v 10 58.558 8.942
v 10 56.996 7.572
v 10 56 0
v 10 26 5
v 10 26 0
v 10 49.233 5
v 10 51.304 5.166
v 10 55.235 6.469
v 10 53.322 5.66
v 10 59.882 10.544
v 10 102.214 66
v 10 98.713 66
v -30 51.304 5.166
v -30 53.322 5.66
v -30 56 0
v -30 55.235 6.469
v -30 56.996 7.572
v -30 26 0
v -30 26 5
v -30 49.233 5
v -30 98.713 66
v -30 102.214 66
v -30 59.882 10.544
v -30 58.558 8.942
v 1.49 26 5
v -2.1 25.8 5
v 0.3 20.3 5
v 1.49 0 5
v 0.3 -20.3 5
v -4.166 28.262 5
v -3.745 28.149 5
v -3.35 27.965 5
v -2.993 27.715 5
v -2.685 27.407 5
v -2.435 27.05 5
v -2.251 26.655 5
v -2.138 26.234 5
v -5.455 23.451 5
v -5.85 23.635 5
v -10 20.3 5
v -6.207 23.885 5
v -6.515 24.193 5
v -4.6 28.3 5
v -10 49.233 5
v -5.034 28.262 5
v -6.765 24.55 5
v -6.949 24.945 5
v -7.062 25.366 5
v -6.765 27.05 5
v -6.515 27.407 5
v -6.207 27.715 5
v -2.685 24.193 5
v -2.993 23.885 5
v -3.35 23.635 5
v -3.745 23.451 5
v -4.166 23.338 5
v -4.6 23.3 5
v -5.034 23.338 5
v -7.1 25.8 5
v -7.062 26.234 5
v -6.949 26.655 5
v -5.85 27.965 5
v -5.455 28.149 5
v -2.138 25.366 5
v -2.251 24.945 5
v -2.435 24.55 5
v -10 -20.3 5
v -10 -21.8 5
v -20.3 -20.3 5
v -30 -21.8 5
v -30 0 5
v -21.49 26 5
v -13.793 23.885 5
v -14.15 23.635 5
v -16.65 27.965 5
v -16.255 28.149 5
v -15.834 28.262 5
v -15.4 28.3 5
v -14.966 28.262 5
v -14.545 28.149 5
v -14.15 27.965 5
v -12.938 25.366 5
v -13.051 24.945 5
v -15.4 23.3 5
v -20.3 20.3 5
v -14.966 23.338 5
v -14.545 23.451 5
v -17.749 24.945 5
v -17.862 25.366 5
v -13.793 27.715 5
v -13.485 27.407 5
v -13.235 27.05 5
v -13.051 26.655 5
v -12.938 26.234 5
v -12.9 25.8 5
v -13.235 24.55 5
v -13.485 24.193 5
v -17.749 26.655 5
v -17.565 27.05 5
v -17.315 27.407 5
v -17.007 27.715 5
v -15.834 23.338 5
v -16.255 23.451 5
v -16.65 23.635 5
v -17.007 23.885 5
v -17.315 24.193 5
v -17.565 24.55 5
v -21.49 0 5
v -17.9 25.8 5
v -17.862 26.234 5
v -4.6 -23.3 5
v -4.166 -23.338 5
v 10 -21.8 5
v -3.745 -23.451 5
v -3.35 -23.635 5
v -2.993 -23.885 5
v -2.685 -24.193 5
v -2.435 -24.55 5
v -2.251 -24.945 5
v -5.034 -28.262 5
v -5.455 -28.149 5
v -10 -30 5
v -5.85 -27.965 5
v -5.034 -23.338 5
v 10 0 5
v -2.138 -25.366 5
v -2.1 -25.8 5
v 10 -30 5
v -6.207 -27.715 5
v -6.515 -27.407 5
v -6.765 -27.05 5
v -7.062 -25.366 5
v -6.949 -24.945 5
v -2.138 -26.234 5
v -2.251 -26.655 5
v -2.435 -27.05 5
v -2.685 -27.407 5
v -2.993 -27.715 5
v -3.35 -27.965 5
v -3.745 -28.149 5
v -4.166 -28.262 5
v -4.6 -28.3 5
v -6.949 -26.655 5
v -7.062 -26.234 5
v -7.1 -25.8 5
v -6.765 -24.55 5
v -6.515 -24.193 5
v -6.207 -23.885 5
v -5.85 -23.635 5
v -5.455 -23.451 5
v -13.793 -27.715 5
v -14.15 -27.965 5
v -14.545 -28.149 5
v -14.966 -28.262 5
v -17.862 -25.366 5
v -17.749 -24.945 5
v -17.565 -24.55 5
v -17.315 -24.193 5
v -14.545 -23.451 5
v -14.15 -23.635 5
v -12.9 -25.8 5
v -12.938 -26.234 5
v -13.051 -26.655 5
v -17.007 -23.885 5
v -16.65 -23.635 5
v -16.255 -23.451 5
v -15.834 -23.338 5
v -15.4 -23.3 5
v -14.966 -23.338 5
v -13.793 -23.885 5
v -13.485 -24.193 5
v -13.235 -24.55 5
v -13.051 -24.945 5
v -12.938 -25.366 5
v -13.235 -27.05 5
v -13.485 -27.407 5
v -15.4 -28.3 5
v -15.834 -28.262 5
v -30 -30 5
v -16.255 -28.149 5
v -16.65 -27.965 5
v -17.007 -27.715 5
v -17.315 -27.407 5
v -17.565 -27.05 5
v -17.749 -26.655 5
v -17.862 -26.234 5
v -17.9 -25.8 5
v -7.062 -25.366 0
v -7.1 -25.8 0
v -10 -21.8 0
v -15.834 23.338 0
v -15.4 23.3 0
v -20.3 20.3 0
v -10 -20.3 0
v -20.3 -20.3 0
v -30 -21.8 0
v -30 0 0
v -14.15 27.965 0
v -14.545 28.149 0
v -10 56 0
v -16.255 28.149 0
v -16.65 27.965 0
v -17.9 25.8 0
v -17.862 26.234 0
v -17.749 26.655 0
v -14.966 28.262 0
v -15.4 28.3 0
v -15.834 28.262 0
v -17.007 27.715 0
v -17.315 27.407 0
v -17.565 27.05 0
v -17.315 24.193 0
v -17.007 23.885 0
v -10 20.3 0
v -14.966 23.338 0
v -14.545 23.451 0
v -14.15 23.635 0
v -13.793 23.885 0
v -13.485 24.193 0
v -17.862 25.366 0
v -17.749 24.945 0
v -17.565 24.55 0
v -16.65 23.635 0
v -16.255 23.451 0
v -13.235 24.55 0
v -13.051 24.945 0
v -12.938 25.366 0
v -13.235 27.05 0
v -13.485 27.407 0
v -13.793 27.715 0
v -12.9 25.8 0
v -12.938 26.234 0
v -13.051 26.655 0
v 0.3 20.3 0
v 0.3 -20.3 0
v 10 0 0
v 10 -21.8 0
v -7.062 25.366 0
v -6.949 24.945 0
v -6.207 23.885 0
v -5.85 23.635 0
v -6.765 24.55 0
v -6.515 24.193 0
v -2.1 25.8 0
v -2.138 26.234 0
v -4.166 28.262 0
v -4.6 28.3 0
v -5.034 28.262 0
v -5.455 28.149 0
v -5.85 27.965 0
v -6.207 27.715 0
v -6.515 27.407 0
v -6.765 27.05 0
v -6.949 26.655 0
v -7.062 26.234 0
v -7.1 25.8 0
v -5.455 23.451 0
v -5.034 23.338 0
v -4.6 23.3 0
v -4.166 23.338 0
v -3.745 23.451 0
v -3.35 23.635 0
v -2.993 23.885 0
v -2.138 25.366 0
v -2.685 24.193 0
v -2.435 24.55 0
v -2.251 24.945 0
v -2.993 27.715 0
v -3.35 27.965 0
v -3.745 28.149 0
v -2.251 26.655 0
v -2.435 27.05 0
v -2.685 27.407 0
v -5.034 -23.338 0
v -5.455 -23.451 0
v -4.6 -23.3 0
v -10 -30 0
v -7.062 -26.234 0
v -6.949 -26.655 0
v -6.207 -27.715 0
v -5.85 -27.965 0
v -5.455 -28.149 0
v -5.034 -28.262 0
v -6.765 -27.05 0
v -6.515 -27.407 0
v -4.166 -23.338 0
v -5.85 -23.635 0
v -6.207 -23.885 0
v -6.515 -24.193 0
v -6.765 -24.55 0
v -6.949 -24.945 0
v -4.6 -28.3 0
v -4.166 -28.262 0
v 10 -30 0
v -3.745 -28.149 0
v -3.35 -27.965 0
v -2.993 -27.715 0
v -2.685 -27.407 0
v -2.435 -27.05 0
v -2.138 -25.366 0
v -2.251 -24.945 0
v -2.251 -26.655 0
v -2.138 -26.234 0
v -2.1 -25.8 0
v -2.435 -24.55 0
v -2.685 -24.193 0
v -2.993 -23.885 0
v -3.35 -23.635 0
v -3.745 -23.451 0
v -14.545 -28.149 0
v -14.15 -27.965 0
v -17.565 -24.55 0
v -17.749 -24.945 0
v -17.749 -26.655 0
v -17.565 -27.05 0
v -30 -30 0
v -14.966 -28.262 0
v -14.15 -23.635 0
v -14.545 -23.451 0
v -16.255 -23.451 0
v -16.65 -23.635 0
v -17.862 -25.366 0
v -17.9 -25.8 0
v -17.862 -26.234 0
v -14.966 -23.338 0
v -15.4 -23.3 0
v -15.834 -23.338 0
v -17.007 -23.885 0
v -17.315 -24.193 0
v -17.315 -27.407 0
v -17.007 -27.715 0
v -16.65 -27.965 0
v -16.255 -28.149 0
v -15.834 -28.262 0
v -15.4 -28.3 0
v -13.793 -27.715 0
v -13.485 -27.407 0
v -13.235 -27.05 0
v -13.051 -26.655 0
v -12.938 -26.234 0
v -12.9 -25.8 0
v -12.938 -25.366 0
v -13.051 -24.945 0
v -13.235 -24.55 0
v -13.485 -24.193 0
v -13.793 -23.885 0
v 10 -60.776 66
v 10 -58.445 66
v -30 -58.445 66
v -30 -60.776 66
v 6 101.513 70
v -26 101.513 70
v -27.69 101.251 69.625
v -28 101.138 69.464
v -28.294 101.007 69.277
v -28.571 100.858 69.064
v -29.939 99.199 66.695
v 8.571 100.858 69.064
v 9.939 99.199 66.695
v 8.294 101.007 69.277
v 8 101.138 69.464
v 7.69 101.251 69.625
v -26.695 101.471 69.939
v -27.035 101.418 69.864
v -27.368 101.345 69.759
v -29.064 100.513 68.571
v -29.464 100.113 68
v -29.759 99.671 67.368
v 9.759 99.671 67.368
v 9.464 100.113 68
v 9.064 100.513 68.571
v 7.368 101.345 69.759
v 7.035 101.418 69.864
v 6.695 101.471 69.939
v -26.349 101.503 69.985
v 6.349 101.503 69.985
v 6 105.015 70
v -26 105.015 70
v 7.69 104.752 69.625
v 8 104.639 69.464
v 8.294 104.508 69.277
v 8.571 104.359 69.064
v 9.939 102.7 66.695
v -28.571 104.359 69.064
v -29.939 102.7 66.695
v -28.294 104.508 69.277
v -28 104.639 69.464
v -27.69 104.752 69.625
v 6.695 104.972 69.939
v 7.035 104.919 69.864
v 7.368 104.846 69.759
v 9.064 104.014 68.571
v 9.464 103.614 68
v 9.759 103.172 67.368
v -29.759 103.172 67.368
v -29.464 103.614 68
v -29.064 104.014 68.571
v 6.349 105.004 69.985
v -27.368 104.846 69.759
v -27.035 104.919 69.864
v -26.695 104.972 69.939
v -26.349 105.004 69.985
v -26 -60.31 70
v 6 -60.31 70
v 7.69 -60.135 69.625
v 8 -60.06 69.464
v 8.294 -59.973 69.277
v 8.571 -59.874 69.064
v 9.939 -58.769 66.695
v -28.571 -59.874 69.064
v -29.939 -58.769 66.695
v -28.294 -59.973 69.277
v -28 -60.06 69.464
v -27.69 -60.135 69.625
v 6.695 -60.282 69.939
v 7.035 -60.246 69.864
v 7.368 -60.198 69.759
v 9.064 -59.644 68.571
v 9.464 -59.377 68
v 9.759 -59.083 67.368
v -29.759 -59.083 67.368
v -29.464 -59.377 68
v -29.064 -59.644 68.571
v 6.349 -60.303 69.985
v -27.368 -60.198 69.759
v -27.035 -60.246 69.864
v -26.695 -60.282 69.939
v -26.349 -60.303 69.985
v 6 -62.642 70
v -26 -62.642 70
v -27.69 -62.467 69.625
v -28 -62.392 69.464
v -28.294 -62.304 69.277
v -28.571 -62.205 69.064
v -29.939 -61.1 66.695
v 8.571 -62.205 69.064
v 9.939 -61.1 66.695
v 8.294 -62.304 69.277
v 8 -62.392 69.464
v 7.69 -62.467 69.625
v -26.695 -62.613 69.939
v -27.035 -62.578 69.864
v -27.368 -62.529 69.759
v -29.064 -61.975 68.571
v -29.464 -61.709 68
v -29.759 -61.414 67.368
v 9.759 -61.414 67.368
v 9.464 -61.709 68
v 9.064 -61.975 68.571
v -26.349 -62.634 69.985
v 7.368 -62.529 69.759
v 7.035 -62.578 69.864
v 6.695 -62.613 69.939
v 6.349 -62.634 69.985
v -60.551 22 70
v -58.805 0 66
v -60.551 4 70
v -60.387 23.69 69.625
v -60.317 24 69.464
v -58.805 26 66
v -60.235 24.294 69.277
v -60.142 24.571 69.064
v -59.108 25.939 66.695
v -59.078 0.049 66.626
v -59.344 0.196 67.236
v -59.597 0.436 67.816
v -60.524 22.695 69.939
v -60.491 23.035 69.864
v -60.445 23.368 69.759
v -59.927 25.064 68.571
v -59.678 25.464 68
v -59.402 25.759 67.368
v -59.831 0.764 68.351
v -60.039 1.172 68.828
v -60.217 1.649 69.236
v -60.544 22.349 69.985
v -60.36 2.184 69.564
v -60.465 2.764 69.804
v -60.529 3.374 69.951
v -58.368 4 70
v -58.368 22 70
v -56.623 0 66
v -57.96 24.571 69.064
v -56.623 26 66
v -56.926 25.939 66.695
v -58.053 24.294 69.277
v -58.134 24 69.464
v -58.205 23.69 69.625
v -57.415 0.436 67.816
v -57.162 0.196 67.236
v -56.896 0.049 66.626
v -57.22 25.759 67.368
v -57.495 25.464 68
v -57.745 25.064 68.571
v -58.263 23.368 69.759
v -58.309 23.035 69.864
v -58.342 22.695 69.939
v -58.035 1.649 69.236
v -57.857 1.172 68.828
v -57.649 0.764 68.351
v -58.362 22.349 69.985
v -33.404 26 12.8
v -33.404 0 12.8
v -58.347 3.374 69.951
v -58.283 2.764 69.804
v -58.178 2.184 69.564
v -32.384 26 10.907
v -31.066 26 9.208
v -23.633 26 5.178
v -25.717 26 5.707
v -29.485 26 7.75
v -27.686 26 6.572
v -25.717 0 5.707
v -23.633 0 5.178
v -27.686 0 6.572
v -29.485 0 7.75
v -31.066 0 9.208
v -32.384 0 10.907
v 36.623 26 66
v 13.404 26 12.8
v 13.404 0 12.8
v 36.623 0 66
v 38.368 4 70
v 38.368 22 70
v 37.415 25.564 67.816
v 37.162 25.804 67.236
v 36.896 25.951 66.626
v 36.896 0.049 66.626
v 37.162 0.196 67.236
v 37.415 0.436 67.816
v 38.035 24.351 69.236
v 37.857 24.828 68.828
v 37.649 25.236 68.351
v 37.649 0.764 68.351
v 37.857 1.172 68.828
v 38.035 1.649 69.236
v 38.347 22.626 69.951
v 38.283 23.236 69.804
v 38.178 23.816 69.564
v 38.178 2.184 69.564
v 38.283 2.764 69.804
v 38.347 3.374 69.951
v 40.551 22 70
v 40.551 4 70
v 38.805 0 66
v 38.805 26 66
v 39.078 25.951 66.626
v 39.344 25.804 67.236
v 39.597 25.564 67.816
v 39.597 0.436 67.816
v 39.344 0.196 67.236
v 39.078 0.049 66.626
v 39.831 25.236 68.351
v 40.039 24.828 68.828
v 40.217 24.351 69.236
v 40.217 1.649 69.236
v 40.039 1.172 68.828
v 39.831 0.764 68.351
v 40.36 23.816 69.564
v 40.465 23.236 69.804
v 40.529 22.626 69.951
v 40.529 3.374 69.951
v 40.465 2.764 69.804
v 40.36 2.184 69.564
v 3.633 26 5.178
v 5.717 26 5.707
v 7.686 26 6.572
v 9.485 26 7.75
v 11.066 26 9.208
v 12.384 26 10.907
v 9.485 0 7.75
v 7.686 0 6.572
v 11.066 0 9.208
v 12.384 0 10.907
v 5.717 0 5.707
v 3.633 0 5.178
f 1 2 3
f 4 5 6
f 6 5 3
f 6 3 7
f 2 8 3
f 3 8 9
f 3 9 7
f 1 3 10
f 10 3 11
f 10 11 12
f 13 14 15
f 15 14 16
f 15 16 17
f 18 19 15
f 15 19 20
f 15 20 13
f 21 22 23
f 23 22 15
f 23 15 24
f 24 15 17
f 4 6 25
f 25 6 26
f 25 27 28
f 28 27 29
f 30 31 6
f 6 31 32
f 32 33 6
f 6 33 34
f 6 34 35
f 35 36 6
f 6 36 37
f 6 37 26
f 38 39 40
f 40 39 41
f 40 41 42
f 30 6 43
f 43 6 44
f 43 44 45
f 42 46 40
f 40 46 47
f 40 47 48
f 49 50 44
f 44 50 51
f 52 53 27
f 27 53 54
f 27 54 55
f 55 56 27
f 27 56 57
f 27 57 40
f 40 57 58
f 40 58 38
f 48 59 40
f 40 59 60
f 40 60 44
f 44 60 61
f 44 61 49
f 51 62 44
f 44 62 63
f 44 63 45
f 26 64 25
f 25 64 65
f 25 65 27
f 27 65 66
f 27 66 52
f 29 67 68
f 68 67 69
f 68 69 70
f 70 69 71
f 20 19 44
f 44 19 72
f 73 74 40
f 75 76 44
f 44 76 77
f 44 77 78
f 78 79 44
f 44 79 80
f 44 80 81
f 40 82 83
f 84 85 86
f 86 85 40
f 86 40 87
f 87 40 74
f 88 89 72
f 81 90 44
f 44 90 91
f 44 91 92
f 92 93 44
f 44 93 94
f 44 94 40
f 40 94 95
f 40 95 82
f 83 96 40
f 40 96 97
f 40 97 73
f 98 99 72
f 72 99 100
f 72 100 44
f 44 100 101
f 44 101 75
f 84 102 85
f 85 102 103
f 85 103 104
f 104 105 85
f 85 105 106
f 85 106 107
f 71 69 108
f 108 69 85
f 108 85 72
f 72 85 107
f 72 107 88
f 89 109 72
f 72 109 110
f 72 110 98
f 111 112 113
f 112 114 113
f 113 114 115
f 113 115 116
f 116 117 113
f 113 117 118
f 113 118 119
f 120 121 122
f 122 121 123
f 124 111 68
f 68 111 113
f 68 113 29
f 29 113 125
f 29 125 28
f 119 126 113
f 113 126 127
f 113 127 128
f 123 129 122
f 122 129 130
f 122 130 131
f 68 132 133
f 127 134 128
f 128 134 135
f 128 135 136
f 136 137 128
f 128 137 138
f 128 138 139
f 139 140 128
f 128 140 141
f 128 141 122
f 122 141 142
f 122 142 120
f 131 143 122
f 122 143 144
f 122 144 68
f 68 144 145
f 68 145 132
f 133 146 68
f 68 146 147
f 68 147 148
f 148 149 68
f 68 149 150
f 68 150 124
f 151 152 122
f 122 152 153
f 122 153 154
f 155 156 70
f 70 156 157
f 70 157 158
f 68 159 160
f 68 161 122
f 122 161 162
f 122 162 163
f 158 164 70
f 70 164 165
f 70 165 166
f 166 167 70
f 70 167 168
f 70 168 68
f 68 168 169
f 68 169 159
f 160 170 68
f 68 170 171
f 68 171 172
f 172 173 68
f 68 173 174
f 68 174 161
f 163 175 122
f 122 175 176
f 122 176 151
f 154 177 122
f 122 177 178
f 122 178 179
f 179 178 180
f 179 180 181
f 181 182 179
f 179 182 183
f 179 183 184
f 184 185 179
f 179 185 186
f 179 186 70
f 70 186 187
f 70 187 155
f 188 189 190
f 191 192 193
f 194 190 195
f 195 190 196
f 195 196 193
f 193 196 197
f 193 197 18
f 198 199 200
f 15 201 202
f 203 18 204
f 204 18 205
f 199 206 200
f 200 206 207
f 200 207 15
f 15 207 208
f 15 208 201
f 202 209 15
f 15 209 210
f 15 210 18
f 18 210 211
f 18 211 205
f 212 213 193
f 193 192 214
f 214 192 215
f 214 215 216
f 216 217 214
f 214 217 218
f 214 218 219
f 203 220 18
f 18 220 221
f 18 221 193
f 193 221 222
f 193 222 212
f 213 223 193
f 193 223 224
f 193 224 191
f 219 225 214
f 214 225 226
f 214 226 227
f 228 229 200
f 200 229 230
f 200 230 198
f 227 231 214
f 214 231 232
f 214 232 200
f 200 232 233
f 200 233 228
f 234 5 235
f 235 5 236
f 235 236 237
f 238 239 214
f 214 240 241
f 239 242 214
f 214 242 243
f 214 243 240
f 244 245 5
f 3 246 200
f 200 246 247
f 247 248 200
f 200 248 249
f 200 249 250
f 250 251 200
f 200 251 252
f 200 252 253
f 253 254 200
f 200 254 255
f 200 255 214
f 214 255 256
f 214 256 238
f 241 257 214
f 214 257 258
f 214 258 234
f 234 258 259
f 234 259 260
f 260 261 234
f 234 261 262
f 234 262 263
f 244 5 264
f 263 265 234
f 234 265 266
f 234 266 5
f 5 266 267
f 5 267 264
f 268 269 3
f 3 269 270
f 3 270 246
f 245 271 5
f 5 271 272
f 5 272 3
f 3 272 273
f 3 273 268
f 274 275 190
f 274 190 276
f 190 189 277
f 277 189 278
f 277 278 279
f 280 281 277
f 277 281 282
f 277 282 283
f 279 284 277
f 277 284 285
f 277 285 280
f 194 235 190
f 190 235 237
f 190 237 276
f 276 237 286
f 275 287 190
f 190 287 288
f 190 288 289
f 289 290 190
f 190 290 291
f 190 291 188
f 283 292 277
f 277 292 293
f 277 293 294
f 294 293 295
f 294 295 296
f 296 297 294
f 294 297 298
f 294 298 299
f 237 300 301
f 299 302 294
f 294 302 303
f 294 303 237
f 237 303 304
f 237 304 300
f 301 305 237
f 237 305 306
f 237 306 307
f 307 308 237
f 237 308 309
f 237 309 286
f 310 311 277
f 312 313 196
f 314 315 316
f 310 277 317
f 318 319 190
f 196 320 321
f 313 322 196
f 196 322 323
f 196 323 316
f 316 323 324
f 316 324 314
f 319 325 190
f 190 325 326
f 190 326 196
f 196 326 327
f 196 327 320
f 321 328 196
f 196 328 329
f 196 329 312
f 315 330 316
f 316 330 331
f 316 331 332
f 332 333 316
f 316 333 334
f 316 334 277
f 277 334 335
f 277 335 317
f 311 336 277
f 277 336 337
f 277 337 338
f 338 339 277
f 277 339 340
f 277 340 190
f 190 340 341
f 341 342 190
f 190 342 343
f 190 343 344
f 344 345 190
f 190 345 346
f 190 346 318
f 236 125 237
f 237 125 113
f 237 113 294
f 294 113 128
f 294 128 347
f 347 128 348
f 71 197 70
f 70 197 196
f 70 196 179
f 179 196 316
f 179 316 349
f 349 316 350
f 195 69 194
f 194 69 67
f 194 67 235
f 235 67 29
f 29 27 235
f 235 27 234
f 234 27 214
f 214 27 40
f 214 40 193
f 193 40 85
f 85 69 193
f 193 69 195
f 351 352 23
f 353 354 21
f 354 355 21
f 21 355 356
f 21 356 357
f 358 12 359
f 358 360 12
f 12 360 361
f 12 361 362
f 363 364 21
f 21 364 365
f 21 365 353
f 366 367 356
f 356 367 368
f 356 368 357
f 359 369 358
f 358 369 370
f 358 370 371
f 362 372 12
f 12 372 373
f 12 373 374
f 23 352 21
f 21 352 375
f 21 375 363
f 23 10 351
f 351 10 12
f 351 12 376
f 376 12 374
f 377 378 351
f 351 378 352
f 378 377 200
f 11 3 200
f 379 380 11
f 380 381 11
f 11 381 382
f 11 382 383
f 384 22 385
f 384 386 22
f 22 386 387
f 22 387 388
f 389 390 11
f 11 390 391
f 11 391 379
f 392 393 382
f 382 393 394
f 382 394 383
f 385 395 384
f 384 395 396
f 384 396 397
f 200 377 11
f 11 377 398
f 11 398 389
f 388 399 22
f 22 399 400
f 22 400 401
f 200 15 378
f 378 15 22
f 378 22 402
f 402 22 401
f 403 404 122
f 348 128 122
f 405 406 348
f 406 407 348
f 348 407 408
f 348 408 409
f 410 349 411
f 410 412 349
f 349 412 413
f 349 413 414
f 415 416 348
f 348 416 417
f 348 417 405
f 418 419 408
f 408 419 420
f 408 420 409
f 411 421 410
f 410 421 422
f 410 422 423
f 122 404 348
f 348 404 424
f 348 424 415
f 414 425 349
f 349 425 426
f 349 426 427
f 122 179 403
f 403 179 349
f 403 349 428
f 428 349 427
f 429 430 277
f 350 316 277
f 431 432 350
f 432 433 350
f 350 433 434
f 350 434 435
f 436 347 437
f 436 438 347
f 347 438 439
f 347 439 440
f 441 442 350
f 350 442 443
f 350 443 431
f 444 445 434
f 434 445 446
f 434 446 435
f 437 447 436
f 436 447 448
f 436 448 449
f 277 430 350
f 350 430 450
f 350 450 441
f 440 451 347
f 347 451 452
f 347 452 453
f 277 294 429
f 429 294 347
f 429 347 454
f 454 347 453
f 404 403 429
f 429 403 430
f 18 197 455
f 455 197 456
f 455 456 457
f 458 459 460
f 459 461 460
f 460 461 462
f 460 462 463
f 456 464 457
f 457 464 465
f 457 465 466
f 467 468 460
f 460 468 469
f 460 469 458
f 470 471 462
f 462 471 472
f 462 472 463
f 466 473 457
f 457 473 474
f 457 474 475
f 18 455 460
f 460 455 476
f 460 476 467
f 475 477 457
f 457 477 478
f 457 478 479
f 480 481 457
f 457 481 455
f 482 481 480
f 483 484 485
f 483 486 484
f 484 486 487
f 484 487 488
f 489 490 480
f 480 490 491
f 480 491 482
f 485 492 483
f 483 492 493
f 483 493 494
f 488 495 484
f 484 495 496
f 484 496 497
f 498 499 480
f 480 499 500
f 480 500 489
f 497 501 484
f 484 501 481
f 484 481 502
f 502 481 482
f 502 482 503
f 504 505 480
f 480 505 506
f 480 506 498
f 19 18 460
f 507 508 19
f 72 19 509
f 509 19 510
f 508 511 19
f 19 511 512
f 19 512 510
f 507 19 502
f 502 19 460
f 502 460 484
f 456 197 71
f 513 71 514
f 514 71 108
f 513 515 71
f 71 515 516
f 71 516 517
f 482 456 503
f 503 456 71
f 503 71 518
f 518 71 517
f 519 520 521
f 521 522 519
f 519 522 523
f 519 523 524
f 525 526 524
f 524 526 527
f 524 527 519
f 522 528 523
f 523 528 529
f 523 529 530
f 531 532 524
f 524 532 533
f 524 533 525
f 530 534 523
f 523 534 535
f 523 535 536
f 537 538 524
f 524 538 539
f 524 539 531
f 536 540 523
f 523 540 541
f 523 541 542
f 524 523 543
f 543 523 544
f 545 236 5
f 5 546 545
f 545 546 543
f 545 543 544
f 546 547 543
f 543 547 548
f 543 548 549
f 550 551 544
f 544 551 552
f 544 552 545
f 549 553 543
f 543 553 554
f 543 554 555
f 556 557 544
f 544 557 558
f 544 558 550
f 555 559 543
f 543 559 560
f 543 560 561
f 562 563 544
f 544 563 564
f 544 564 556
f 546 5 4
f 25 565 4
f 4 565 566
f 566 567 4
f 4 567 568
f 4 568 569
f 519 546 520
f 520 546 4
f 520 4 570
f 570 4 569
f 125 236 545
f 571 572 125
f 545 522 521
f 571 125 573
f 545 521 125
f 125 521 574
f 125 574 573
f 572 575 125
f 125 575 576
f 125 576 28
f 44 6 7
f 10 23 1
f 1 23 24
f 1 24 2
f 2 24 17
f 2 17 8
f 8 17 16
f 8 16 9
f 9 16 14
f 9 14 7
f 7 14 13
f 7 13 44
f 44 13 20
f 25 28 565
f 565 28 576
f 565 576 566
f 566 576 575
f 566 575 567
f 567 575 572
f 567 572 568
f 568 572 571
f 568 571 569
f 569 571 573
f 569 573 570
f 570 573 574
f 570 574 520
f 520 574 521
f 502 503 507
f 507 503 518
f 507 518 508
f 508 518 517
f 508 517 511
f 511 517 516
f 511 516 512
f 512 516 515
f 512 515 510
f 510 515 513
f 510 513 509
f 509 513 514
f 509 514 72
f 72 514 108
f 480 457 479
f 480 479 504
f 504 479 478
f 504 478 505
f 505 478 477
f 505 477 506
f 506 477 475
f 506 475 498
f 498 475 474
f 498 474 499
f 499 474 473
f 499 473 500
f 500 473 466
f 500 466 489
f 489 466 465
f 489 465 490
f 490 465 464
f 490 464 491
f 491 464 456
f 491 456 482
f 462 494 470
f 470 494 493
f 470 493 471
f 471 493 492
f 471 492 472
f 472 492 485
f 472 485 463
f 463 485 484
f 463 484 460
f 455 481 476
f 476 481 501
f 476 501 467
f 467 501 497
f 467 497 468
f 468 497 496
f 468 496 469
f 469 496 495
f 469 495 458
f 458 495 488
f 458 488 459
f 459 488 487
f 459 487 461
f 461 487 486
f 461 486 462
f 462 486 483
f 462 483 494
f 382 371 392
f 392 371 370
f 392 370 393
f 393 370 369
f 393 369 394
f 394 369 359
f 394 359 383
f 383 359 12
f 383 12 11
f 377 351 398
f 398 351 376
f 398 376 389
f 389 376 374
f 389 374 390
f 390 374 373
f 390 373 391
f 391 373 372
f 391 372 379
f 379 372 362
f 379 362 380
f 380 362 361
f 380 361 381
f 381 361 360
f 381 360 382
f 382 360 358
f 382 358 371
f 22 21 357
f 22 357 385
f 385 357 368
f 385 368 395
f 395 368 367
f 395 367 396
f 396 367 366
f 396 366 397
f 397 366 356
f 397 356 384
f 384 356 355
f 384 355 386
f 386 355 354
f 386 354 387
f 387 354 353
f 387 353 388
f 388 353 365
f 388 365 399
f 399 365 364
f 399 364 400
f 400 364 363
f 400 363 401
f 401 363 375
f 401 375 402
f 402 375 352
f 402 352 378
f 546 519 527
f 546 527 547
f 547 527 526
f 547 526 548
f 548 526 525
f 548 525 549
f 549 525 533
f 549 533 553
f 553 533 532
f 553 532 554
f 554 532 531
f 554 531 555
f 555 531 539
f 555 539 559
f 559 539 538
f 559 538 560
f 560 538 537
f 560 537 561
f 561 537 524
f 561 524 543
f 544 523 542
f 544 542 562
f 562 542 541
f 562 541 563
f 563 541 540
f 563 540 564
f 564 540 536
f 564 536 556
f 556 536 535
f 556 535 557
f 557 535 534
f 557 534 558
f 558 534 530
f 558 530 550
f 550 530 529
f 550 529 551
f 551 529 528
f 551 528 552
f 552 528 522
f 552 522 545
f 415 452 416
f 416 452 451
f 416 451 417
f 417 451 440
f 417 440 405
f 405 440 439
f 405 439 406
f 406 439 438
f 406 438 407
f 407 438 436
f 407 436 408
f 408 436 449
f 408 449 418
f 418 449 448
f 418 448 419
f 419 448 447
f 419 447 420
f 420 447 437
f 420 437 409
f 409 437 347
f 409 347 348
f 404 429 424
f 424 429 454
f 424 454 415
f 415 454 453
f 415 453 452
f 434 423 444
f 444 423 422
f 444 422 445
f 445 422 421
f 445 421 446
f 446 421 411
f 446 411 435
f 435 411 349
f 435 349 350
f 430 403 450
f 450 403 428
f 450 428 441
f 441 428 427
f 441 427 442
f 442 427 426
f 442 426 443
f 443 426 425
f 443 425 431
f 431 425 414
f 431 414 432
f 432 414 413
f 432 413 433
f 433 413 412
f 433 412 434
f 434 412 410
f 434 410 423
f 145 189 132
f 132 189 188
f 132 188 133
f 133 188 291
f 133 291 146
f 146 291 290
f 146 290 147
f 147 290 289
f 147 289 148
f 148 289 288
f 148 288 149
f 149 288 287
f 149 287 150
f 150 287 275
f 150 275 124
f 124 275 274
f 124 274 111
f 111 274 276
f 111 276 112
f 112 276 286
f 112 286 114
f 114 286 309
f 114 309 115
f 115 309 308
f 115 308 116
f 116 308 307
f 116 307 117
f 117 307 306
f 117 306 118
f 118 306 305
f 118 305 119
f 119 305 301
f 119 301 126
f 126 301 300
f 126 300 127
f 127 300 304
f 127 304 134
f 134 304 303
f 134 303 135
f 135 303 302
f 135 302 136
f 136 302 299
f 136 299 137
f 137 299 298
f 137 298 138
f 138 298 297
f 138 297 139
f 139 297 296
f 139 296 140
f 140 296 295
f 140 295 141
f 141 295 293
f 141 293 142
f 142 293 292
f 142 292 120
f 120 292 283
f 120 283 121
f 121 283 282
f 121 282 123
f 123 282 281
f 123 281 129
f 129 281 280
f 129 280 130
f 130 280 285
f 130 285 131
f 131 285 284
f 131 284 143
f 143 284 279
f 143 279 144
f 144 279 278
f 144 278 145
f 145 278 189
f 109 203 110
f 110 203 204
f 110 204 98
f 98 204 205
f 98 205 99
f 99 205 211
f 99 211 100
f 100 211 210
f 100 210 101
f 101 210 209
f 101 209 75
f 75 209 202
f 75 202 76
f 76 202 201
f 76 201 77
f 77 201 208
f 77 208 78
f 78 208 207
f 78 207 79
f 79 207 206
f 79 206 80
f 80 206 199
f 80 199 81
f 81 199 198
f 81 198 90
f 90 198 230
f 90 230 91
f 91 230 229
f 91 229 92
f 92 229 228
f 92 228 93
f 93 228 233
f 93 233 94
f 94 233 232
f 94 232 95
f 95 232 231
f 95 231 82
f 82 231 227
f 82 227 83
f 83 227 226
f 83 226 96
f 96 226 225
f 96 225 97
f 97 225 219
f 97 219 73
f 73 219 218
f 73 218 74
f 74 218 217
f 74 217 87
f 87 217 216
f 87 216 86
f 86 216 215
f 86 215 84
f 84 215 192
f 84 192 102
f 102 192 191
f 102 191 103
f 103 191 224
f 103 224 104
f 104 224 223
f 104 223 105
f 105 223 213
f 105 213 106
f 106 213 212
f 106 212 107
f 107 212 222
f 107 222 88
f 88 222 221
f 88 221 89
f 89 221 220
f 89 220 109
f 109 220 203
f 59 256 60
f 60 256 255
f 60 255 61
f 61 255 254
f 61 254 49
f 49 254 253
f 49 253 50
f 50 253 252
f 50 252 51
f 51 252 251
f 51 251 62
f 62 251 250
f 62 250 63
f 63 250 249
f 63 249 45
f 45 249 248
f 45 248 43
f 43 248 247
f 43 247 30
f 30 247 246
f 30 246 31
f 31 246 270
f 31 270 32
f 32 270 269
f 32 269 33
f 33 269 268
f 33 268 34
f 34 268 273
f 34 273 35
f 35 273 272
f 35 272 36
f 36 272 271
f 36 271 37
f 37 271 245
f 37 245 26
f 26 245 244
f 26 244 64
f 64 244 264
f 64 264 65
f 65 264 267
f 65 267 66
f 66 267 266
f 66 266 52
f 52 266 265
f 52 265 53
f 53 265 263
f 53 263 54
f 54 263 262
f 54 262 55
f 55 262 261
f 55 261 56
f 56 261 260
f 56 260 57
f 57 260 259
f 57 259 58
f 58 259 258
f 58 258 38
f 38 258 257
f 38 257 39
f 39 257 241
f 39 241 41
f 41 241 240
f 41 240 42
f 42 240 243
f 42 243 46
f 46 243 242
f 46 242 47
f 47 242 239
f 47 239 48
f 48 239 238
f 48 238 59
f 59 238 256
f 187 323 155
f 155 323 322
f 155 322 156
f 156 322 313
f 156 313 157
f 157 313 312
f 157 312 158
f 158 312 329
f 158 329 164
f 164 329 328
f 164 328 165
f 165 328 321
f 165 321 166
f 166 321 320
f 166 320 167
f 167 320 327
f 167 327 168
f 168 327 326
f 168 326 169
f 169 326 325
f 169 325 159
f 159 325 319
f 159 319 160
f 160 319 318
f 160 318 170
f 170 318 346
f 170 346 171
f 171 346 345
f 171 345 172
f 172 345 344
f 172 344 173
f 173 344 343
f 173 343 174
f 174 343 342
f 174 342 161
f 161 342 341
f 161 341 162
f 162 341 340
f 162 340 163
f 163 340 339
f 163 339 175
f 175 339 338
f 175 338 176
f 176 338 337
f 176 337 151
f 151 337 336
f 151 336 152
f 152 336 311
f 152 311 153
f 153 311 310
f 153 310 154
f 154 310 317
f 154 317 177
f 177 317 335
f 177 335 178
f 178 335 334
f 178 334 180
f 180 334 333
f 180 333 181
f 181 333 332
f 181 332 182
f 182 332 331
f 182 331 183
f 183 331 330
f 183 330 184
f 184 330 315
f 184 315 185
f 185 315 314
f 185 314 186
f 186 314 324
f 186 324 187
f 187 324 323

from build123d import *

# Parameters (mm, degrees)
ESQUISSE1_W             = 40
ESQUISSE1_H             = 60
ESQUISSE1_W_2           = 20.6
ESQUISSE1_H_2           = 40.6
BOSS_EXTRU_1_DEPTH      = 5
ESQUISSE2_W             = 40
ESQUISSE2_H             = 5
BOSS_EXTRU_2_DEPTH      = 26
BOSS_EXTRU_5_DEPTH      = 40
BOSS_EXTRU_6_DEPTH      = 26
CONG_1_R                = 13
CONG_2_R                = 4
ENL_V_MAT_EXTRU_1_REACH = 141.98
ESQUISSE6_R             = 2.5


with BuildPart() as part:
    # Esquisse1 → Boss.-Extru.1 (new body)
    with BuildSketch(Plane.XY):
        with Locations((-10, 0)):
            Rectangle(ESQUISSE1_W, ESQUISSE1_H)
        with Locations((-10, 0)):
            Rectangle(ESQUISSE1_W_2, ESQUISSE1_H_2, mode=Mode.SUBTRACT)
    extrude(amount=BOSS_EXTRU_1_DEPTH)

    # Esquisse2 → Boss.-Extru.2 (add)
    with BuildSketch(Plane(origin=(0, 30, 0), x_dir=(1, 0, 0), z_dir=(0, 1, 0))):
        with Locations((-10, -2.5)):
            Rectangle(ESQUISSE2_W, ESQUISSE2_H)
    extrude(amount=BOSS_EXTRU_2_DEPTH)

    # Esquisse3 → Boss.-Extru.5 (add)
    with BuildSketch(Plane(origin=(10, 0, 0), x_dir=(0, 0, -1), z_dir=(1, 0, 0))):
        Polygon((0, 56), (-70, 105.014527675), (-70, 101.513489984), (-5, 56), align=None)
        Polygon((-5, -30), (0, -30), (-70, -62.641536071), (-70, -60.30999778), align=None)
    extrude(amount=-BOSS_EXTRU_5_DEPTH)

    # Esquisse4 → Boss.-Extru.6 (add)
    with BuildSketch(Plane(origin=(0, 0, 0), x_dir=(1, 0, 0), z_dir=(0, 1, 0))):
        Polygon((-30, -5), (-58.368325731, -70), (-60.550504633, -70), (-30, 0), align=None)
        Polygon((10, 0), (40.550504633, -70), (38.368325731, -70), (10, -5), align=None)
    extrude(amount=BOSS_EXTRU_6_DEPTH)

    # Congé1
    cong_1_edges = [part.edges().sort_by_distance(p)[0] for p in [
        (-10, 56, 5),
        (10, 13, 5),
        (-30, 13, 5),
    ]]
    fillet(cong_1_edges, radius=CONG_1_R)

    # Congé2
    cong_2_edges = [part.edges().sort_by_distance(p)[0] for p in [
        (10, 103.264008829, 70),
        (-30, 103.264008829, 70),
        (10, -61.475766925, 70),
        (-30, -61.475766925, 70),
        (-59.459415182, 0, 70),
        (-59.459415182, 26, 70),
        (39.459415182, 0, 70),
        (39.459415182, 26, 70),
    ]]
    fillet(cong_2_edges, radius=CONG_2_R)

    # Esquisse6 → Enlèv. mat.-Extru.1 (cut, up to next)
    with BuildSketch(Plane(origin=(0, 0, 0), x_dir=(-1, 0, 0), z_dir=(0, 0, -1)), mode=Mode.PRIVATE) as enl_v_mat_extru_1_sk1:
        with Locations((4.6, -25.8)):
            Circle(ESQUISSE6_R)
    enl_v_mat_extru_1_tool1 = extrude(enl_v_mat_extru_1_sk1.sketch, amount=-ENL_V_MAT_EXTRU_1_REACH, mode=Mode.PRIVATE) & part.part
    # Esquisse6 → Enlèv. mat.-Extru.1 (cut, up to next)
    with BuildSketch(Plane(origin=(0, 0, 0), x_dir=(-1, 0, 0), z_dir=(0, 0, -1)), mode=Mode.PRIVATE) as enl_v_mat_extru_1_sk2:
        with Locations((15.4, -25.8)):
            Circle(ESQUISSE6_R)
    enl_v_mat_extru_1_tool2 = extrude(enl_v_mat_extru_1_sk2.sketch, amount=-ENL_V_MAT_EXTRU_1_REACH, mode=Mode.PRIVATE) & part.part
    # Esquisse6 → Enlèv. mat.-Extru.1 (cut, up to next)
    with BuildSketch(Plane(origin=(0, 0, 0), x_dir=(-1, 0, 0), z_dir=(0, 0, -1)), mode=Mode.PRIVATE) as enl_v_mat_extru_1_sk3:
        with Locations((4.6, 25.8)):
            Circle(ESQUISSE6_R)
    enl_v_mat_extru_1_tool3 = extrude(enl_v_mat_extru_1_sk3.sketch, amount=-ENL_V_MAT_EXTRU_1_REACH, mode=Mode.PRIVATE) & part.part
    # Esquisse6 → Enlèv. mat.-Extru.1 (cut, up to next)
    with BuildSketch(Plane(origin=(0, 0, 0), x_dir=(-1, 0, 0), z_dir=(0, 0, -1)), mode=Mode.PRIVATE) as enl_v_mat_extru_1_sk4:
        with Locations((15.4, 25.8)):
            Circle(ESQUISSE6_R)
    enl_v_mat_extru_1_tool4 = extrude(enl_v_mat_extru_1_sk4.sketch, amount=-ENL_V_MAT_EXTRU_1_REACH, mode=Mode.PRIVATE) & part.part
    add(enl_v_mat_extru_1_tool1.solids().sort_by_distance((-4.6, -25.8, 0))[0], mode=Mode.SUBTRACT)
    add(enl_v_mat_extru_1_tool2.solids().sort_by_distance((-15.4, -25.8, 0))[0], mode=Mode.SUBTRACT)
    add(enl_v_mat_extru_1_tool3.solids().sort_by_distance((-4.6, 25.8, 0))[0], mode=Mode.SUBTRACT)
    add(enl_v_mat_extru_1_tool4.solids().sort_by_distance((-15.4, 25.8, 0))[0], mode=Mode.SUBTRACT)


solid = part.part
